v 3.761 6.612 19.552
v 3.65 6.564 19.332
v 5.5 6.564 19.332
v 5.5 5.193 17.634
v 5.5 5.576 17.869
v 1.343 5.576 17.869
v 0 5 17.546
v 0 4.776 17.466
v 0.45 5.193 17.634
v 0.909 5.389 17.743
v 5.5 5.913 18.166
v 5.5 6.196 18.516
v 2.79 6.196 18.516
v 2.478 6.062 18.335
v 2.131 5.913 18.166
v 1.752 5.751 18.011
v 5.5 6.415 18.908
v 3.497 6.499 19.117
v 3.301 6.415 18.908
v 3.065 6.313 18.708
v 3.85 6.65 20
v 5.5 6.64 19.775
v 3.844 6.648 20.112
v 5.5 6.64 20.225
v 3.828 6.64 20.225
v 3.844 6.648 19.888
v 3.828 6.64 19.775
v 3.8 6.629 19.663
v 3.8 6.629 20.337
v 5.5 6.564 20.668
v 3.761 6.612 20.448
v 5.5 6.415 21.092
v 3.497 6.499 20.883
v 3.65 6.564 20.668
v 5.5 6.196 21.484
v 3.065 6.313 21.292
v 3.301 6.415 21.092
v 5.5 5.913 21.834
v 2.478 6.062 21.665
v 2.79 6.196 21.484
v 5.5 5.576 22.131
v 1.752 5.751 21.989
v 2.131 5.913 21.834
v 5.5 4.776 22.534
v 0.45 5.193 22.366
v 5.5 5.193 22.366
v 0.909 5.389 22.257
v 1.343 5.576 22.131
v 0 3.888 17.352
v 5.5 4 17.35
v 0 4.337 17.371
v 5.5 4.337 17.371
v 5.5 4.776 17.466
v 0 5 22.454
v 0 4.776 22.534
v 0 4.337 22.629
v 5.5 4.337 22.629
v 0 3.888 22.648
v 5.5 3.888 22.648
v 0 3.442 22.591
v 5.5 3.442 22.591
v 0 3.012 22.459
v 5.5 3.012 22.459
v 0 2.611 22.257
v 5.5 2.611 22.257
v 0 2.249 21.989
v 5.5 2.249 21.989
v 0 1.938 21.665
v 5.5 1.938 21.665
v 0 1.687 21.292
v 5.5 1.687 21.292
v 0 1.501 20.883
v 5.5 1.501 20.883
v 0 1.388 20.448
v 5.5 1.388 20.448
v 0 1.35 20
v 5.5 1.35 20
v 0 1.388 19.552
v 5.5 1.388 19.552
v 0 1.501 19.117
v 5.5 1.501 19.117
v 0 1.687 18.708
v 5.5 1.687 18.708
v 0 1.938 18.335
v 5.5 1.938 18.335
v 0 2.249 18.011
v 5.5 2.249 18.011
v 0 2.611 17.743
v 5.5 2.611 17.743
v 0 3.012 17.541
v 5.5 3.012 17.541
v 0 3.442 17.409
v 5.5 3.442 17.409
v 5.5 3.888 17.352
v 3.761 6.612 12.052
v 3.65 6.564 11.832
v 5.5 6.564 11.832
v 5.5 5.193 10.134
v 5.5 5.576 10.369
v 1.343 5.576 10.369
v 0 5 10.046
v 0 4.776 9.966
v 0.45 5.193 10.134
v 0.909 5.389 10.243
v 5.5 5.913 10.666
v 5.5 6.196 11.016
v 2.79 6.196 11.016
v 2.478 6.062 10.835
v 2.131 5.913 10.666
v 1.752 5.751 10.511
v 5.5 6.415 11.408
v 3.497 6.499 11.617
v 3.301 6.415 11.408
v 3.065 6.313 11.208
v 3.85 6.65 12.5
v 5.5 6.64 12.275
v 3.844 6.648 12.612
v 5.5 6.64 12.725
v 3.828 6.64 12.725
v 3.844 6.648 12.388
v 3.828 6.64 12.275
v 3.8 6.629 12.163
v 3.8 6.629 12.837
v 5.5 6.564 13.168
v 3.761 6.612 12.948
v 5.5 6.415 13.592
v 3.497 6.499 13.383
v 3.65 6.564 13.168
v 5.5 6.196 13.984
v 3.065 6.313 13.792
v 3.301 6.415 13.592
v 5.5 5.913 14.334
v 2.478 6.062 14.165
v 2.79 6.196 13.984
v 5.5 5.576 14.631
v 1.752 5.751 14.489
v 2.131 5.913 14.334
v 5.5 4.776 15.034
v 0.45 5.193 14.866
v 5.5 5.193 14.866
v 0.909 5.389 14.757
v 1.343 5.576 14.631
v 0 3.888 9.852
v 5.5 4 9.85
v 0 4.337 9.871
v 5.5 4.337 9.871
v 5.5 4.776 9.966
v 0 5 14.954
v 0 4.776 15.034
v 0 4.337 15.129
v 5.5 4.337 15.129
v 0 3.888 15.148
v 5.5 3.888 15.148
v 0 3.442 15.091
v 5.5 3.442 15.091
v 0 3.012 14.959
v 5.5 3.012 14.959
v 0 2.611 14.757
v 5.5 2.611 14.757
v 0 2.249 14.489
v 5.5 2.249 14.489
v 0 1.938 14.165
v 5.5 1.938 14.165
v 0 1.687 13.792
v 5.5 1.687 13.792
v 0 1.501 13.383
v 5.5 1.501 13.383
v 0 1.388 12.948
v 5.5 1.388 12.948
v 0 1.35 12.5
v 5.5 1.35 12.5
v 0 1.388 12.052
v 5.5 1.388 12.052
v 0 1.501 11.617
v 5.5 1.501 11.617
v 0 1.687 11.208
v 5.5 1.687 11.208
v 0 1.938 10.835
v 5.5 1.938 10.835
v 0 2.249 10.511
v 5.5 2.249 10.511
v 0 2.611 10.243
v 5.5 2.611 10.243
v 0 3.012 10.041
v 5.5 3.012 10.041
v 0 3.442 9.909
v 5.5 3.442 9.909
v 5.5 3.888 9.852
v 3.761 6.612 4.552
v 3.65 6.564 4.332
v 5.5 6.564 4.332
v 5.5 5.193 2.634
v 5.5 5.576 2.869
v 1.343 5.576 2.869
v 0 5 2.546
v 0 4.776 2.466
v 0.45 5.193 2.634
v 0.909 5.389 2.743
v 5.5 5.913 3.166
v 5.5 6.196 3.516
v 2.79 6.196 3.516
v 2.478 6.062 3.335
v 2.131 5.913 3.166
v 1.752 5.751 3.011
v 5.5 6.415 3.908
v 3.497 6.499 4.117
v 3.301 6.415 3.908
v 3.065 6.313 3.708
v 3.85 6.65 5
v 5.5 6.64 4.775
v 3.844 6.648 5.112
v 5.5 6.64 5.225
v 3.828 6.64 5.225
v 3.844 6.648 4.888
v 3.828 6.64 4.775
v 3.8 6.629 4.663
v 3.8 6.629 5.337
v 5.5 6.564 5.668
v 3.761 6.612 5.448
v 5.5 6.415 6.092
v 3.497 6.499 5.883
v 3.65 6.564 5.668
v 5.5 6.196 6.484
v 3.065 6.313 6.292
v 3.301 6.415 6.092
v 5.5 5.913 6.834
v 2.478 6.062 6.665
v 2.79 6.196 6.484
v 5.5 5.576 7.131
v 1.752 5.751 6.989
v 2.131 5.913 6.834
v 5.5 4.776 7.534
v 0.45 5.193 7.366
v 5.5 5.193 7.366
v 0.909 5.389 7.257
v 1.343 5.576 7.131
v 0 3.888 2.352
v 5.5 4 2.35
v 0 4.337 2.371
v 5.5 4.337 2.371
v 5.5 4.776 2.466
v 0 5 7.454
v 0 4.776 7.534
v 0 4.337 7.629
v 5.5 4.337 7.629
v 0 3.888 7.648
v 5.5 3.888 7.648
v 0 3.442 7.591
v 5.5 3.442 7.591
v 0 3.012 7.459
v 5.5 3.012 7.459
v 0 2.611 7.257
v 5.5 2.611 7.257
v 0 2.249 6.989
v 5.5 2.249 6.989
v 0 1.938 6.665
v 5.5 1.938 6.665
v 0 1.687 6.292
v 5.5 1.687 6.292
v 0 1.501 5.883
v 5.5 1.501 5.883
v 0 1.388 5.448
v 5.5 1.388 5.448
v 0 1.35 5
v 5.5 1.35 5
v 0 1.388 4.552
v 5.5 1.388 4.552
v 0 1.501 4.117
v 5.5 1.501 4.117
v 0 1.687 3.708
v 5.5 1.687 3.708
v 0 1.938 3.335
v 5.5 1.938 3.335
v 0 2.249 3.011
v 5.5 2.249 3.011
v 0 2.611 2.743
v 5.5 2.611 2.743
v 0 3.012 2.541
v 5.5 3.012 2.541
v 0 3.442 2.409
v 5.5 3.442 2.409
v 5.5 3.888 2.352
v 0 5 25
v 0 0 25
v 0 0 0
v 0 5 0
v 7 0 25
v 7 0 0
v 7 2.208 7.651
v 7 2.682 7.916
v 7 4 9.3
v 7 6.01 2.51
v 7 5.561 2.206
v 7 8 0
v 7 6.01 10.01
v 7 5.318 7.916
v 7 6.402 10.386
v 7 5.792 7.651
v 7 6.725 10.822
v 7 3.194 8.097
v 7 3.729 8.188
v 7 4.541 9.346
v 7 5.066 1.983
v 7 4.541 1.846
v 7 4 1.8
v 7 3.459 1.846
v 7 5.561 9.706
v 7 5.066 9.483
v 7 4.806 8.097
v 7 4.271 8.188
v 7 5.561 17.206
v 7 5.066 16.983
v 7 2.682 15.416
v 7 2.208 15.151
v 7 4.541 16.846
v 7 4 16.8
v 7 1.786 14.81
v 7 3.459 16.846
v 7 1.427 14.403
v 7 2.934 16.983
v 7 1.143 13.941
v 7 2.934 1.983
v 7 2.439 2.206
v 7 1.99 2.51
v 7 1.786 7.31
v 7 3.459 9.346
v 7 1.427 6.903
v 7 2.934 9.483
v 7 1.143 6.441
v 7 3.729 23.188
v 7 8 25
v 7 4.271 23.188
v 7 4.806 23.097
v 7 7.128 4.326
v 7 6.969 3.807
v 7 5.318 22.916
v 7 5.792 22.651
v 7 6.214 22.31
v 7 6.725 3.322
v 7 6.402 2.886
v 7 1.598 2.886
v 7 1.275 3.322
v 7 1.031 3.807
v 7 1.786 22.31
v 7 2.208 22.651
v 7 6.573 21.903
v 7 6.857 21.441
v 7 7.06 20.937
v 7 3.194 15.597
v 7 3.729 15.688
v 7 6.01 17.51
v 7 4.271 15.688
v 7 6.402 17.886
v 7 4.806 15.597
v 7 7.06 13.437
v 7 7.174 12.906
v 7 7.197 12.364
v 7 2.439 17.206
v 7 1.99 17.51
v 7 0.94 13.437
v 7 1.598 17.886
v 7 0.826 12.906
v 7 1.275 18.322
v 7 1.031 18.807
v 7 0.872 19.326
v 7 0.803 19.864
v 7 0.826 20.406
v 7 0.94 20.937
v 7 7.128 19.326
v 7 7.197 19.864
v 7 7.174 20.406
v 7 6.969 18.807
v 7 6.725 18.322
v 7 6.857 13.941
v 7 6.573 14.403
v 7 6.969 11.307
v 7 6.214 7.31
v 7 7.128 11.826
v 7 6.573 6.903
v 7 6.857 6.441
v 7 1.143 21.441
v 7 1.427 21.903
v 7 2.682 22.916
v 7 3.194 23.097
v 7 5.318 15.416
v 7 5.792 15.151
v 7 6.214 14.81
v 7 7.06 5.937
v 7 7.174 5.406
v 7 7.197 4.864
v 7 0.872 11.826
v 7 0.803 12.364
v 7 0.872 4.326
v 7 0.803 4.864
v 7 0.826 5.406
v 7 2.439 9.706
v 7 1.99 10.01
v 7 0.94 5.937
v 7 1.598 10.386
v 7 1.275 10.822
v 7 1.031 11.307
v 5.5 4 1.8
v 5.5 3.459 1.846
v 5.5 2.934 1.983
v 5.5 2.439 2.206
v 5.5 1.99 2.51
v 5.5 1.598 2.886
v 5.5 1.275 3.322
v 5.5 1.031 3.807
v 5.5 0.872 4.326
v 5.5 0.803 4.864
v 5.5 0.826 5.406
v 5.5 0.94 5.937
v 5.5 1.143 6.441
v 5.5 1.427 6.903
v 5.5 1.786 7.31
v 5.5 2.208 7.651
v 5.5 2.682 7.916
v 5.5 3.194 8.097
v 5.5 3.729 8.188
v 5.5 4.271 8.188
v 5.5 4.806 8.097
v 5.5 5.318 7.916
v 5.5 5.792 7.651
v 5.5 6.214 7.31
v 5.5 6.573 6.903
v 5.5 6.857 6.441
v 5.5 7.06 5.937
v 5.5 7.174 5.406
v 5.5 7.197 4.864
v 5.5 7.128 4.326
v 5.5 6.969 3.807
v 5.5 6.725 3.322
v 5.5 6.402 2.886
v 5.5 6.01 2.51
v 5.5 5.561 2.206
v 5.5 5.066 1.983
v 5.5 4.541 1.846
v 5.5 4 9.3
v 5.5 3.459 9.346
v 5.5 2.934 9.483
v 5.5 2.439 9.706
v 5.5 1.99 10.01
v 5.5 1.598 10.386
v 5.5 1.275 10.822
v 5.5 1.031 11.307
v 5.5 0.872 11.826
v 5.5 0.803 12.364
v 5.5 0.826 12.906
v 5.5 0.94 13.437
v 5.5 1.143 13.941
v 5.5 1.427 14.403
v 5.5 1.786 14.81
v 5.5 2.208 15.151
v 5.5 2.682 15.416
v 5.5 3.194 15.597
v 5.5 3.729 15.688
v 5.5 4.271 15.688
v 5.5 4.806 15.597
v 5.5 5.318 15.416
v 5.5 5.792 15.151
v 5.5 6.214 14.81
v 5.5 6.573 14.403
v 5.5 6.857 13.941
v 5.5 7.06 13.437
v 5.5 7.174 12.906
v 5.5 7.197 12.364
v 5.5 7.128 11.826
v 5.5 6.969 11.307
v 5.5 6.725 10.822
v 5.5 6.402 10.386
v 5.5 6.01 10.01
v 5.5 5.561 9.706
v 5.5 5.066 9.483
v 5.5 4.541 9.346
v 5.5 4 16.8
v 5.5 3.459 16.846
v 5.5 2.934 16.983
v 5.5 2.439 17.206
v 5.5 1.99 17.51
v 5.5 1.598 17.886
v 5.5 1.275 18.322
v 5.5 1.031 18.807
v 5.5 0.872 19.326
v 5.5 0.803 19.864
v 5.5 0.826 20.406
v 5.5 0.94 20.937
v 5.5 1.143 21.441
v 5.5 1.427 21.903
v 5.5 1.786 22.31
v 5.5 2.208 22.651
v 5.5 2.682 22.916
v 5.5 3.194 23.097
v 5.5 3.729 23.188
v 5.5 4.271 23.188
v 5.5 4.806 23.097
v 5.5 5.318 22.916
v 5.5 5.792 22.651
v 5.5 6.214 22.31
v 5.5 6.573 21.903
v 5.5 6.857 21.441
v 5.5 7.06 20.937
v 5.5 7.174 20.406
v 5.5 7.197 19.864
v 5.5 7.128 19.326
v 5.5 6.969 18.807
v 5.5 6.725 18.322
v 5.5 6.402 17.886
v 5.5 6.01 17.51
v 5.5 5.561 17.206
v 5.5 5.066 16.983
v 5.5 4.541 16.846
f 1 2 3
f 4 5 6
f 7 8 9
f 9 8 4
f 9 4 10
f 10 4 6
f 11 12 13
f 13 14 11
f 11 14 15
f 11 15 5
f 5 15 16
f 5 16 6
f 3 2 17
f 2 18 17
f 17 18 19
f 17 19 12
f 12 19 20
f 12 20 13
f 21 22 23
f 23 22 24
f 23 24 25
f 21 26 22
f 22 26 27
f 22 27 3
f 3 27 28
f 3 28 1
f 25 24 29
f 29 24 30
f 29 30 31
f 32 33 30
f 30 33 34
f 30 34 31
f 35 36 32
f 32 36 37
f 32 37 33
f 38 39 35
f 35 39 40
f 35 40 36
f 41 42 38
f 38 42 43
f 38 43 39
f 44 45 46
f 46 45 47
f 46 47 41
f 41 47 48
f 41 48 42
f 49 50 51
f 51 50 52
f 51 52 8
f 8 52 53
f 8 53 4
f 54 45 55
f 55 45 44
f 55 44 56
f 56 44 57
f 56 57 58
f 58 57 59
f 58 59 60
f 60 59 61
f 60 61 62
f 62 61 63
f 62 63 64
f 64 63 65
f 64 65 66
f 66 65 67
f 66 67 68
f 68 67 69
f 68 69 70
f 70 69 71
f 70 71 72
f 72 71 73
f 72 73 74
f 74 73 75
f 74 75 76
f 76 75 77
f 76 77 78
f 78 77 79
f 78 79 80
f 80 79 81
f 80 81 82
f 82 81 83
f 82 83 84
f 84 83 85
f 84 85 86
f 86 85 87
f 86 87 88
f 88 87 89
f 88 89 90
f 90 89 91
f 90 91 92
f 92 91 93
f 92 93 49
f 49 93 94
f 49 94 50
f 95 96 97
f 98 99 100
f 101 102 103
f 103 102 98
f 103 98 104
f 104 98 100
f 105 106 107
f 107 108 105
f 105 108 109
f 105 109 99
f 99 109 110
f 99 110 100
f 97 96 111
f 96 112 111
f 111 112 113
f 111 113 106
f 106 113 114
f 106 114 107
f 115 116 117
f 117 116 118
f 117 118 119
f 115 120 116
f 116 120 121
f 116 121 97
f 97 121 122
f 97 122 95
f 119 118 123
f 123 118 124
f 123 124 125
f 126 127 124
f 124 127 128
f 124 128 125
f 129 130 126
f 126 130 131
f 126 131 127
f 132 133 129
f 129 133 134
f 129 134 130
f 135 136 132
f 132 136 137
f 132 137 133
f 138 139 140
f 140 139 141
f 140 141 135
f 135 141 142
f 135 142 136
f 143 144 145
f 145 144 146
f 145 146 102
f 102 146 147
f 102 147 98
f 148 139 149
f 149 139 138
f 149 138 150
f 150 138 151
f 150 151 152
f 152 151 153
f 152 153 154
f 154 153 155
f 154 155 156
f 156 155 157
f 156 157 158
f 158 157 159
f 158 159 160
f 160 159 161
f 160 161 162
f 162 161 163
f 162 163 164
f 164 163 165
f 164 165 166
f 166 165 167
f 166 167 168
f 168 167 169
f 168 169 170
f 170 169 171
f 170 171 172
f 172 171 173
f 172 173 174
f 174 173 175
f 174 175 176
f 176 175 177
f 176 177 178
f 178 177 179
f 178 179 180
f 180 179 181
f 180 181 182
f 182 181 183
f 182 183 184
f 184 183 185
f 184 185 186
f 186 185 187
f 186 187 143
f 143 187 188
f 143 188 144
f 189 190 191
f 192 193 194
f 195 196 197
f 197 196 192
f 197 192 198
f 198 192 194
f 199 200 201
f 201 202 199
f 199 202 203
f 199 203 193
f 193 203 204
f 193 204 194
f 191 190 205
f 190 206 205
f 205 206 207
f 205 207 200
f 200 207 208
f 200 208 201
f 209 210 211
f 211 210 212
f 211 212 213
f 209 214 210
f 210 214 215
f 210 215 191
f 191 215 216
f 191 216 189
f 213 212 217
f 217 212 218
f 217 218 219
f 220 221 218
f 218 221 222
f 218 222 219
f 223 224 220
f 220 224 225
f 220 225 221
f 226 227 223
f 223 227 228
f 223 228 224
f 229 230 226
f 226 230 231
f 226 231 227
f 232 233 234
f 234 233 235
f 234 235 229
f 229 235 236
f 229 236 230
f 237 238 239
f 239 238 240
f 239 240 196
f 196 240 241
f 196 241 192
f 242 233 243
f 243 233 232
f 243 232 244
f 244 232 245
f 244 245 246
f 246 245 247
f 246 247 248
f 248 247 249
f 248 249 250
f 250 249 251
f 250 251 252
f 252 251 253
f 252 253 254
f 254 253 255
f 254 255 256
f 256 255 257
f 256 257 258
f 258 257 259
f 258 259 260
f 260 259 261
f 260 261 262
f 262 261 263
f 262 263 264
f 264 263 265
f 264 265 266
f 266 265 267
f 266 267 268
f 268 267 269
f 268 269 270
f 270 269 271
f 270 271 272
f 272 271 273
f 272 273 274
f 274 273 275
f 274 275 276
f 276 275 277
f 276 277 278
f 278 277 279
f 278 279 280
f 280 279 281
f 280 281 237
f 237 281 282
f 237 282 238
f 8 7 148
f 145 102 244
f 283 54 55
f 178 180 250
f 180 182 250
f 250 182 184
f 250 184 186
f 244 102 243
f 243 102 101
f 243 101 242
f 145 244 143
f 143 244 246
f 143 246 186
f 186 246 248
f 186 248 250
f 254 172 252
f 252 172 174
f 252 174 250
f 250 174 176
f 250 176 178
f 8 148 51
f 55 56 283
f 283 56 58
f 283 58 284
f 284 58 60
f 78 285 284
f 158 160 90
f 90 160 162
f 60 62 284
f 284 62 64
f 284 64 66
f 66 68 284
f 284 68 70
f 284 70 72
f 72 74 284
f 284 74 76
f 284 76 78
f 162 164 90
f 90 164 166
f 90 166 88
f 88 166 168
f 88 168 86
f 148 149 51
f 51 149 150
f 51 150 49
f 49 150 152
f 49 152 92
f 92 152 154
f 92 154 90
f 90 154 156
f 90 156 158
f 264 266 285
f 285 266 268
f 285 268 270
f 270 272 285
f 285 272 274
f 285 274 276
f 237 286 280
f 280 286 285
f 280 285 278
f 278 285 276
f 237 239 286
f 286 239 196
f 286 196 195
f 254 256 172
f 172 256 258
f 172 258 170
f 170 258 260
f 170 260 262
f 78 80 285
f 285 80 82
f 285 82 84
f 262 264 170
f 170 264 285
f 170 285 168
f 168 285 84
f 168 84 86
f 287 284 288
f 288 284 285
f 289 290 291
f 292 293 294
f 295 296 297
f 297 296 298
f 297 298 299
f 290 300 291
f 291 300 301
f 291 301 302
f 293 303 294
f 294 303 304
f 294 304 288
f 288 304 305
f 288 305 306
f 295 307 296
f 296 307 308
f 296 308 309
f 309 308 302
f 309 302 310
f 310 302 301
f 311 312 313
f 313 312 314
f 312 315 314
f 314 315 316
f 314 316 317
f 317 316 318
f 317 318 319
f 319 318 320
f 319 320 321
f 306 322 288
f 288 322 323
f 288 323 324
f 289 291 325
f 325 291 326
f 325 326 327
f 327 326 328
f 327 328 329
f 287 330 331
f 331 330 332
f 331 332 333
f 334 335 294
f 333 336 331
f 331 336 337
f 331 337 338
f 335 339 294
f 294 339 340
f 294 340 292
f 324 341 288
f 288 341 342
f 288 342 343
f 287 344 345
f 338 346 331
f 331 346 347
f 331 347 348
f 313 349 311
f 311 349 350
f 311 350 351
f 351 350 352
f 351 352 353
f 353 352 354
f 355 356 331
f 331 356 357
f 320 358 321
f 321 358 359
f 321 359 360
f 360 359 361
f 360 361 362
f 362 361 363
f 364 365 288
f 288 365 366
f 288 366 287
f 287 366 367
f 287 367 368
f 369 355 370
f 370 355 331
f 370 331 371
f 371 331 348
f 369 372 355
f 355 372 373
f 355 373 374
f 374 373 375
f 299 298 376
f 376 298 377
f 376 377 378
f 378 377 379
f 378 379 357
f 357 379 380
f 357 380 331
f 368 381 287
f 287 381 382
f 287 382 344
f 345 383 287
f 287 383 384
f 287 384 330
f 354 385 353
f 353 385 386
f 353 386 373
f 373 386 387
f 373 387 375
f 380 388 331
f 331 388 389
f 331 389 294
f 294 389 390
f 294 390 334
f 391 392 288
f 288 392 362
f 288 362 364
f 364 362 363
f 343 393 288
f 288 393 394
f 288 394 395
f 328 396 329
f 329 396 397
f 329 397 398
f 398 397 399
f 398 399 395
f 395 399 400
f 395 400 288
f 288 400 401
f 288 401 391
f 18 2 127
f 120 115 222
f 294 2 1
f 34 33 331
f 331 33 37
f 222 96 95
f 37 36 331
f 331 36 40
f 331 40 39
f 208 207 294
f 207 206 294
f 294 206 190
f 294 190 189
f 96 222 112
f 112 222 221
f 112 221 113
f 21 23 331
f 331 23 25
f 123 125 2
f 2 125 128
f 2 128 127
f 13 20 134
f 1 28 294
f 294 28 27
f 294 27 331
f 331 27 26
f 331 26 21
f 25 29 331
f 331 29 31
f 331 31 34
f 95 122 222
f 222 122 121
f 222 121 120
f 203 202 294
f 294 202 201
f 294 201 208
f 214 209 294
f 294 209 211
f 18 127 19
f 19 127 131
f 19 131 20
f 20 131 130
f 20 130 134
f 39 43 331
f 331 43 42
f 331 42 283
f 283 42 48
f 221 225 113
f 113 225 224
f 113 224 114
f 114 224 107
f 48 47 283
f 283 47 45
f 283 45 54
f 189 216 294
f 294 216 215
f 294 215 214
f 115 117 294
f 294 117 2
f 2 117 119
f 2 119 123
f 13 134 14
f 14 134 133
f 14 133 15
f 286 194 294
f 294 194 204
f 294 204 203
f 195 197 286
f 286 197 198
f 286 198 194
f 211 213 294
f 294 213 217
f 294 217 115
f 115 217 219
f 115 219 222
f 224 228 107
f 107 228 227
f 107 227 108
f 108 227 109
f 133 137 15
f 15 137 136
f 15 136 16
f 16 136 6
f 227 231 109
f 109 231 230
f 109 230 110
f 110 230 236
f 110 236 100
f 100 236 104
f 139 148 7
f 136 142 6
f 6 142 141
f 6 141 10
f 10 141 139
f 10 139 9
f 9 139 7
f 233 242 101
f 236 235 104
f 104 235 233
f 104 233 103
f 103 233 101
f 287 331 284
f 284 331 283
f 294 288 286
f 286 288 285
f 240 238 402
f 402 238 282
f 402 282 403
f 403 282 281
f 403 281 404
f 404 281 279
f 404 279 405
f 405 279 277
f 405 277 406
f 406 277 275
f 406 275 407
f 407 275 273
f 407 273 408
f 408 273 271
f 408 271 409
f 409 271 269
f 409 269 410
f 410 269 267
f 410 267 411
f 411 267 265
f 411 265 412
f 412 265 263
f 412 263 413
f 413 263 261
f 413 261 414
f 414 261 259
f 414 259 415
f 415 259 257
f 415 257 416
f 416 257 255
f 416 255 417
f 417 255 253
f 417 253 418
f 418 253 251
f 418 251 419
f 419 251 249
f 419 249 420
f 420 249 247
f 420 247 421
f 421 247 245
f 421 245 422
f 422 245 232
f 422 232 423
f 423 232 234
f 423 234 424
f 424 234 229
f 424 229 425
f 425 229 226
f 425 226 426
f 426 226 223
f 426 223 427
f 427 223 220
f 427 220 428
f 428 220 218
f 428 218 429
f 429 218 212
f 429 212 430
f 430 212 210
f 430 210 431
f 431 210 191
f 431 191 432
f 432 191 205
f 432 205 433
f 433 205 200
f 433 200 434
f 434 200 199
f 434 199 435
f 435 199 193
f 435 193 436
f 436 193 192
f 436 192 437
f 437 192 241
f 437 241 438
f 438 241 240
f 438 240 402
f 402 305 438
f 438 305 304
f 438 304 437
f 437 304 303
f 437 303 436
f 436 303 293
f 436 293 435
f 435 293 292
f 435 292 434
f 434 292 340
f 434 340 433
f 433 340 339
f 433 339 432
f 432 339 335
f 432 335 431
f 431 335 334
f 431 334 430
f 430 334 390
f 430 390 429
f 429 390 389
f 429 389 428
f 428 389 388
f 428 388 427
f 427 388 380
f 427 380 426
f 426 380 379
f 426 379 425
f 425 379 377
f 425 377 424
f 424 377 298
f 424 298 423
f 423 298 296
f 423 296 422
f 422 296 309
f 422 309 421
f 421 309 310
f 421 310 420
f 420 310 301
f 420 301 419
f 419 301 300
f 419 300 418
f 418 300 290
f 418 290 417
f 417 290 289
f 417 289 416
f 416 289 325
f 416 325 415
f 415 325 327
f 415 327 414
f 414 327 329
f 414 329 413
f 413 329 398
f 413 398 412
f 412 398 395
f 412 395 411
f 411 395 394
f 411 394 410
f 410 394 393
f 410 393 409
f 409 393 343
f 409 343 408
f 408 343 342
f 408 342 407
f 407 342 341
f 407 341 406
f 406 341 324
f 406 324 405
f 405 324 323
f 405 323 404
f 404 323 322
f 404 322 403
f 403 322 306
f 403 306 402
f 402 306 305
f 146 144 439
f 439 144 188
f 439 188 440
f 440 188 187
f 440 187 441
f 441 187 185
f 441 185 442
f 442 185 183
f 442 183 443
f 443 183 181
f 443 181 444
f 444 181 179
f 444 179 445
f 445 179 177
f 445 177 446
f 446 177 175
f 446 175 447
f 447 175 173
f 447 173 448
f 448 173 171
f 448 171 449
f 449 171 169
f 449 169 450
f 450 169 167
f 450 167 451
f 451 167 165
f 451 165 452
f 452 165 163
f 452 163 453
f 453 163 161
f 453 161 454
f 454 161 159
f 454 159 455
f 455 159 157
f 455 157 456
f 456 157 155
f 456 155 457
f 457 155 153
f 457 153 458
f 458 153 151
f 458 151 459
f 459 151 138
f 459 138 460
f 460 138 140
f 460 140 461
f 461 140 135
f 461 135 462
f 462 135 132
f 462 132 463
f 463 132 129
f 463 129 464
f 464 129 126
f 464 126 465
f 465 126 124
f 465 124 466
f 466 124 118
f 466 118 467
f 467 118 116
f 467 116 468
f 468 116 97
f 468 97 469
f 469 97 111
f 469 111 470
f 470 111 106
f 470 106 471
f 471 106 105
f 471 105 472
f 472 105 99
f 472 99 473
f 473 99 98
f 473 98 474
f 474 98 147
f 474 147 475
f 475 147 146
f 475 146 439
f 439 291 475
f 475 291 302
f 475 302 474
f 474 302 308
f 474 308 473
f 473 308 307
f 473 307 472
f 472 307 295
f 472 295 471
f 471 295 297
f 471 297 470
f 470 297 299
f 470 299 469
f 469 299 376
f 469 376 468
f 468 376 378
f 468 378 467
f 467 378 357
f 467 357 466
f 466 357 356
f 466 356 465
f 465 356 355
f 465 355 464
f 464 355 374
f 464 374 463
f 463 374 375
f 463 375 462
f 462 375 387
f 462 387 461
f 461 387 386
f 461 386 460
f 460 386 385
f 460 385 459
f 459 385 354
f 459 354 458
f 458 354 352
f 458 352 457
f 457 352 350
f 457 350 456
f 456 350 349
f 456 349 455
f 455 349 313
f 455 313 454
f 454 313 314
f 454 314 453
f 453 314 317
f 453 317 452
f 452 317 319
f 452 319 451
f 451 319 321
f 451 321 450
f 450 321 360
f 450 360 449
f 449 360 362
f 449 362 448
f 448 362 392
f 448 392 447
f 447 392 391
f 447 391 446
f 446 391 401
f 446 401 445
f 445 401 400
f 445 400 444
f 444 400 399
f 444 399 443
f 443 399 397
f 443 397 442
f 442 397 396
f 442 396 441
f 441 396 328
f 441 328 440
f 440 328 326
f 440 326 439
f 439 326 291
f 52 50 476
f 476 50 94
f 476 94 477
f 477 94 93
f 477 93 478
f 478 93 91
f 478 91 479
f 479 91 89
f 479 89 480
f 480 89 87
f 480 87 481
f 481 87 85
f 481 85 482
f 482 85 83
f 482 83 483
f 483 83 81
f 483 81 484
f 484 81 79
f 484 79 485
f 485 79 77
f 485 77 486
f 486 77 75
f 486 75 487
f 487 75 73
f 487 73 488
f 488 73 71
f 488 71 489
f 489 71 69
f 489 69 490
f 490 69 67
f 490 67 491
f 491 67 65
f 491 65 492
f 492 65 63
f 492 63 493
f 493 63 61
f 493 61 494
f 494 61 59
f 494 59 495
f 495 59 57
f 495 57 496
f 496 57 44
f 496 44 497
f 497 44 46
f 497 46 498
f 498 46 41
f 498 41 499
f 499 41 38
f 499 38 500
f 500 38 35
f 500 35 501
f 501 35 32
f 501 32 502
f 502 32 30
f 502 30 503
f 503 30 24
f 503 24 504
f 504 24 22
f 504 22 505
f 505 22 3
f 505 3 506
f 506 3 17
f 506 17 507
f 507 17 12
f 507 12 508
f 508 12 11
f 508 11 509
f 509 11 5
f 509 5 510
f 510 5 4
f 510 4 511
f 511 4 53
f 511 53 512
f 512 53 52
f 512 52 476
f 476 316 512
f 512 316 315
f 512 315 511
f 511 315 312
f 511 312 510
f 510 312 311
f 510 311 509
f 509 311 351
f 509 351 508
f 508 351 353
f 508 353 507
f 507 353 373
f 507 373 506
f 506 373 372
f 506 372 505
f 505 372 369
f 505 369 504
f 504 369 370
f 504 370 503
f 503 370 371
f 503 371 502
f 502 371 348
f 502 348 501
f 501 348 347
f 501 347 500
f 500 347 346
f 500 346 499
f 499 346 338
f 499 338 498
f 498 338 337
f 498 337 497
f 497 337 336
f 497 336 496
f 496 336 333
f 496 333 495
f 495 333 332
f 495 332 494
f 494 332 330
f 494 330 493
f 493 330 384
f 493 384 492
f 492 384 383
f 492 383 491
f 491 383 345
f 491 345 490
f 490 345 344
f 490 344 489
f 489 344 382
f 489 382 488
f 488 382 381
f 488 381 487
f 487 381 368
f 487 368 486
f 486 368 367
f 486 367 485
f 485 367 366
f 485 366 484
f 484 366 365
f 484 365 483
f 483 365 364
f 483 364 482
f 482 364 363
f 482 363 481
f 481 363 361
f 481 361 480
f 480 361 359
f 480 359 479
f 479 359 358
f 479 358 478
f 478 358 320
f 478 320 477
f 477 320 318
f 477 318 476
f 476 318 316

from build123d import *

# Parameters (mm, degrees)
BOSS_EXTRU_1_DEPTH      = 25
ESQUISSE2_R             = 2.65
ENL_V_MAT_EXTRU_1_DEPTH = 28.166155414
ESQUISSE3_R             = 3.2
ENL_V_MAT_EXTRU_2_DEPTH = 1.5


with BuildPart() as part:
    # Esquisse1 → Boss.-Extru.1 (new body)
    with BuildSketch(Plane.XY):
        Polygon((0, 0), (7, 0), (7, 8), (0, 5), align=None)
    extrude(amount=BOSS_EXTRU_1_DEPTH)

    # Esquisse2 → Enlèv. mat.-Extru.1 (cut, through all)
    with BuildSketch(Plane.ZY):
        with Locations(Location((5, 4, 0), (0, 0, 270))):
            Circle(ESQUISSE2_R)
        with Locations(Location((12.5, 4, 0), (0, 0, 270))):
            Circle(ESQUISSE2_R)
        with Locations(Location((20, 4, 0), (0, 0, 270))):
            Circle(ESQUISSE2_R)
    extrude(amount=-ENL_V_MAT_EXTRU_1_DEPTH, mode=Mode.SUBTRACT)

    # Esquisse3 → Enlèv. mat.-Extru.2 (cut)
    with BuildSketch(Plane(origin=(7, 0, 0), x_dir=(0, 0, -1), z_dir=(1, 0, 0))):
        with Locations((-20, 4)):
            Circle(ESQUISSE3_R)
        with Locations((-12.5, 4)):
            Circle(ESQUISSE3_R)
        with Locations((-5, 4)):
            Circle(ESQUISSE3_R)
    extrude(amount=-ENL_V_MAT_EXTRU_2_DEPTH, mode=Mode.SUBTRACT)


solid = part.part
